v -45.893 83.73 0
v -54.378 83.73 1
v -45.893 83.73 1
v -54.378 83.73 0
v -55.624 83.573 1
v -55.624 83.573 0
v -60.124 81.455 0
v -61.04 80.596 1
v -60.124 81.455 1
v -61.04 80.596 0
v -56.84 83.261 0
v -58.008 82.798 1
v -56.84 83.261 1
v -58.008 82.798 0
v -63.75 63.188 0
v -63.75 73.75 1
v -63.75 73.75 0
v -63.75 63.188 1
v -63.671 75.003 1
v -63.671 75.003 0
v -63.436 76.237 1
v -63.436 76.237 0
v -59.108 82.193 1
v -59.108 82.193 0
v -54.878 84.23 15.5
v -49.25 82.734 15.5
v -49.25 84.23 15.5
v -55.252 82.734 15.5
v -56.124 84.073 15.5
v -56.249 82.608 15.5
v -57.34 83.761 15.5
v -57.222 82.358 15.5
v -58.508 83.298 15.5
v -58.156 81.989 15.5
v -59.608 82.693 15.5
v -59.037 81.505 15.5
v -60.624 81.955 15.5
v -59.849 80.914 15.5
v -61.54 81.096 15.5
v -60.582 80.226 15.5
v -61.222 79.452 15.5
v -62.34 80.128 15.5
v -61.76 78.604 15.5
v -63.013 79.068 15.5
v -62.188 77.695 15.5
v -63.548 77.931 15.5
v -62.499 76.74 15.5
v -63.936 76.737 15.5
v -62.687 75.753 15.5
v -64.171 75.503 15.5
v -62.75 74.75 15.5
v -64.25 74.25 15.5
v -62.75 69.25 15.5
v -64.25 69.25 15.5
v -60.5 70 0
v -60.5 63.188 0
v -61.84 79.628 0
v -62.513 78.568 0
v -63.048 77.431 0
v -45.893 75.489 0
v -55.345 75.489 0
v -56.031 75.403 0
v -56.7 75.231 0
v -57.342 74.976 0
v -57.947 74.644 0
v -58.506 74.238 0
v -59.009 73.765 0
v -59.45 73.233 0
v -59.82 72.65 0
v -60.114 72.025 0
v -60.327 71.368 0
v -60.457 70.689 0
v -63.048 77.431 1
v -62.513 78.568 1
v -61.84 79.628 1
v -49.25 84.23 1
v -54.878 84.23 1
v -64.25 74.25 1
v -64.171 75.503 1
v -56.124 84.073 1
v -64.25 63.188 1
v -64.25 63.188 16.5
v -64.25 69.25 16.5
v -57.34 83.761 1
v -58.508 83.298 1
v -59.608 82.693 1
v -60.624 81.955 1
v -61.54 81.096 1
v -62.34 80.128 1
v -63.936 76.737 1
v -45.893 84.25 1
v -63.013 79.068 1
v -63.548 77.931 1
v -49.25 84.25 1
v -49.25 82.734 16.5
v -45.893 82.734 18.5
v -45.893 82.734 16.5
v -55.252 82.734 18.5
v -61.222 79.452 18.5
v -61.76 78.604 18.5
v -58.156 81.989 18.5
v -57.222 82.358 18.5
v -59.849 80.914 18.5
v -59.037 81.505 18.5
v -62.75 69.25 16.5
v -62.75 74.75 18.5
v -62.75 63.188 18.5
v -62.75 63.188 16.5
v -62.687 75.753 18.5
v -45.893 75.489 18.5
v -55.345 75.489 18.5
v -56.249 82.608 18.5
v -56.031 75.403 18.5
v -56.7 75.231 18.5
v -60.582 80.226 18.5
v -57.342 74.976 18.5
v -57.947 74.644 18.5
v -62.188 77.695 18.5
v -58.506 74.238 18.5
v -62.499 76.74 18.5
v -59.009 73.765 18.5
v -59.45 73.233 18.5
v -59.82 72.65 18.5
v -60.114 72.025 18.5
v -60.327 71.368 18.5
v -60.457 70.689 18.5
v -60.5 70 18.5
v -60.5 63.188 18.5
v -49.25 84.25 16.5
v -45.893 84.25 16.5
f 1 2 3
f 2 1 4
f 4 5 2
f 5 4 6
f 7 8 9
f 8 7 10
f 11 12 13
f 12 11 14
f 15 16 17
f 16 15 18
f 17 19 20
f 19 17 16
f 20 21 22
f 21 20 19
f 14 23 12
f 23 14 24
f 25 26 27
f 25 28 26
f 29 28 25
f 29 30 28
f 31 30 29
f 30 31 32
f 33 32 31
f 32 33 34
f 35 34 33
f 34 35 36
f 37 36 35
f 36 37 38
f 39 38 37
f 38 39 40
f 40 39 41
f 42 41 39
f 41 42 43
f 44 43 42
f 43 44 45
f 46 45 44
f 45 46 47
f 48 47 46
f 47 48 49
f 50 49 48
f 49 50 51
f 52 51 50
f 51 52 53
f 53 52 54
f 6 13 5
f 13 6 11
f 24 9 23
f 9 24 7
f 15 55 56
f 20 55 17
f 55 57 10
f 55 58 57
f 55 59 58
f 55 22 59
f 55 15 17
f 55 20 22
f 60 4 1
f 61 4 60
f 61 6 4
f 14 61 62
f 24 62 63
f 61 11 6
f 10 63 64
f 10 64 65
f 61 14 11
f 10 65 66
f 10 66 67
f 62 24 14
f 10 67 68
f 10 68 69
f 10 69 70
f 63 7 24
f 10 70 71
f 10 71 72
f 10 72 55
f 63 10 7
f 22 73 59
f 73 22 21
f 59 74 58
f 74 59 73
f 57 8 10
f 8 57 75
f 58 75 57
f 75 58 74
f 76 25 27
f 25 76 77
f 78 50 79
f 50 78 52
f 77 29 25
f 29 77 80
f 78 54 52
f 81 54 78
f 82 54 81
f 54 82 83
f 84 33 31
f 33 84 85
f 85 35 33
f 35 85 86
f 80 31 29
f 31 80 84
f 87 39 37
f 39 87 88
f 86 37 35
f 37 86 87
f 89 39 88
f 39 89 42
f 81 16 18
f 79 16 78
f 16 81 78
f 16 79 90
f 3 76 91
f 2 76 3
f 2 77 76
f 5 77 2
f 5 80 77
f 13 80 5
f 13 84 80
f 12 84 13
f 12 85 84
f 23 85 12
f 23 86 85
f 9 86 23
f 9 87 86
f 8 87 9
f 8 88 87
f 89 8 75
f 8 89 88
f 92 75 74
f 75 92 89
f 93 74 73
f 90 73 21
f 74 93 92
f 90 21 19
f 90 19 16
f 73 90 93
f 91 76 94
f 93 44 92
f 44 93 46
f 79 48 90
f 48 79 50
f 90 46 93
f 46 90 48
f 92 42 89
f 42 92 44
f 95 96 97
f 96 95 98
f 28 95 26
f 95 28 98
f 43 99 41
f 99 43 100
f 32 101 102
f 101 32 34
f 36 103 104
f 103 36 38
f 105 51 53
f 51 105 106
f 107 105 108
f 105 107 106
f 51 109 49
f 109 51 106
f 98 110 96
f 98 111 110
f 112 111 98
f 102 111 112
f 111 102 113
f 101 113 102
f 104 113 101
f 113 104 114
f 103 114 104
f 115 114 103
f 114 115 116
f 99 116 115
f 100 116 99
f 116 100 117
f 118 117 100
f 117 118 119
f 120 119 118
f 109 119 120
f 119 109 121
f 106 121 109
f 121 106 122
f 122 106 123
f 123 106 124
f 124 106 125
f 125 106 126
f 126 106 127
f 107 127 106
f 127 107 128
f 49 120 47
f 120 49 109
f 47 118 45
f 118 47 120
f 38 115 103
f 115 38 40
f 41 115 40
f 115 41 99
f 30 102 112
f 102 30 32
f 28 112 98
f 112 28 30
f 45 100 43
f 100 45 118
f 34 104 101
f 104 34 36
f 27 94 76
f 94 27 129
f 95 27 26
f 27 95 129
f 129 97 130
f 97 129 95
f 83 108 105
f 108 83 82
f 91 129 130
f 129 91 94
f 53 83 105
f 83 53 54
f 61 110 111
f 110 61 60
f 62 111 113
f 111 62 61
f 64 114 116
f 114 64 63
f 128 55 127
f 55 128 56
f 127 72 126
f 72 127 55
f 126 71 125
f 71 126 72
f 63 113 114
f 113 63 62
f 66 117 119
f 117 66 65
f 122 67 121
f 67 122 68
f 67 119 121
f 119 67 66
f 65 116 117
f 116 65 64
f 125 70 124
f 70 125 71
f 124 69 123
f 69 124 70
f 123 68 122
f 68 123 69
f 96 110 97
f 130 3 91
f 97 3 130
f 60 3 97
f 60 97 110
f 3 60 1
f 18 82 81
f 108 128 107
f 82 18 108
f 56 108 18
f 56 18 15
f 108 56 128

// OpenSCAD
$fn = 50;


difference() {
	union() {
		hull() {
			translate(v = [-53.7500000000, 73.7500000000, 0]) {
				cylinder(h = 15.5000000000, r = 10);
			}
			translate(v = [53.7500000000, 73.7500000000, 0]) {
				cylinder(h = 15.5000000000, r = 10);
			}
			translate(v = [-53.7500000000, -73.7500000000, 0]) {
				cylinder(h = 15.5000000000, r = 10);
			}
			translate(v = [53.7500000000, -73.7500000000, 0]) {
				cylinder(h = 15.5000000000, r = 10);
			}
		}
		translate(v = [0, 0, 1]) {
			hull() {
				translate(v = [-54.2500000000, 74.2500000000, 0]) {
					cylinder(h = 14.5000000000, r = 10);
				}
				translate(v = [54.2500000000, 74.2500000000, 0]) {
					cylinder(h = 14.5000000000, r = 10);
				}
				translate(v = [-54.2500000000, -74.2500000000, 0]) {
					cylinder(h = 14.5000000000, r = 10);
				}
				translate(v = [54.2500000000, -74.2500000000, 0]) {
					cylinder(h = 14.5000000000, r = 10);
				}
			}
		}
		hull() {
			translate(v = [-54.7500000000, 74.7500000000, 0]) {
				cylinder(h = 18.5000000000, r = 8);
			}
			translate(v = [54.7500000000, 74.7500000000, 0]) {
				cylinder(h = 18.5000000000, r = 8);
			}
			translate(v = [-54.7500000000, -74.7500000000, 0]) {
				cylinder(h = 18.5000000000, r = 8);
			}
			translate(v = [54.7500000000, -74.7500000000, 0]) {
				cylinder(h = 18.5000000000, r = 8);
			}
		}
		translate(v = [-49.2500000000, -84.2500000000, 1]) {
			cube(size = [98.5000000000, 168.5000000000, 15.5000000000]);
		}
		translate(v = [-64.2500000000, -69.2500000000, 1]) {
			cube(size = [128.5000000000, 138.5000000000, 15.5000000000]);
		}
	}
	union() {
		hull() {
			translate(v = [-55.0000000000, 70.0000000000, 0]) {
				cylinder(h = 18.5000000000, r = 5.5000000000);
			}
			translate(v = [55.0000000000, 70.0000000000, 0]) {
				cylinder(h = 18.5000000000, r = 5.5000000000);
			}
			translate(v = [-55.0000000000, -70.0000000000, 0]) {
				cylinder(h = 18.5000000000, r = 5.5000000000);
			}
			translate(v = [55.0000000000, -70.0000000000, 0]) {
				cylinder(h = 18.5000000000, r = 5.5000000000);
			}
		}
		translate(v = [-45.8928571429, -84.2500000000, 0]) {
			cube(size = [128.5000000000, 168.5000000000, 18.5000000000]);
		}
		translate(v = [-64.2500000000, -105.3125000000, 0]) {
			cube(size = [128.5000000000, 168.5000000000, 18.5000000000]);
		}
	}
}
